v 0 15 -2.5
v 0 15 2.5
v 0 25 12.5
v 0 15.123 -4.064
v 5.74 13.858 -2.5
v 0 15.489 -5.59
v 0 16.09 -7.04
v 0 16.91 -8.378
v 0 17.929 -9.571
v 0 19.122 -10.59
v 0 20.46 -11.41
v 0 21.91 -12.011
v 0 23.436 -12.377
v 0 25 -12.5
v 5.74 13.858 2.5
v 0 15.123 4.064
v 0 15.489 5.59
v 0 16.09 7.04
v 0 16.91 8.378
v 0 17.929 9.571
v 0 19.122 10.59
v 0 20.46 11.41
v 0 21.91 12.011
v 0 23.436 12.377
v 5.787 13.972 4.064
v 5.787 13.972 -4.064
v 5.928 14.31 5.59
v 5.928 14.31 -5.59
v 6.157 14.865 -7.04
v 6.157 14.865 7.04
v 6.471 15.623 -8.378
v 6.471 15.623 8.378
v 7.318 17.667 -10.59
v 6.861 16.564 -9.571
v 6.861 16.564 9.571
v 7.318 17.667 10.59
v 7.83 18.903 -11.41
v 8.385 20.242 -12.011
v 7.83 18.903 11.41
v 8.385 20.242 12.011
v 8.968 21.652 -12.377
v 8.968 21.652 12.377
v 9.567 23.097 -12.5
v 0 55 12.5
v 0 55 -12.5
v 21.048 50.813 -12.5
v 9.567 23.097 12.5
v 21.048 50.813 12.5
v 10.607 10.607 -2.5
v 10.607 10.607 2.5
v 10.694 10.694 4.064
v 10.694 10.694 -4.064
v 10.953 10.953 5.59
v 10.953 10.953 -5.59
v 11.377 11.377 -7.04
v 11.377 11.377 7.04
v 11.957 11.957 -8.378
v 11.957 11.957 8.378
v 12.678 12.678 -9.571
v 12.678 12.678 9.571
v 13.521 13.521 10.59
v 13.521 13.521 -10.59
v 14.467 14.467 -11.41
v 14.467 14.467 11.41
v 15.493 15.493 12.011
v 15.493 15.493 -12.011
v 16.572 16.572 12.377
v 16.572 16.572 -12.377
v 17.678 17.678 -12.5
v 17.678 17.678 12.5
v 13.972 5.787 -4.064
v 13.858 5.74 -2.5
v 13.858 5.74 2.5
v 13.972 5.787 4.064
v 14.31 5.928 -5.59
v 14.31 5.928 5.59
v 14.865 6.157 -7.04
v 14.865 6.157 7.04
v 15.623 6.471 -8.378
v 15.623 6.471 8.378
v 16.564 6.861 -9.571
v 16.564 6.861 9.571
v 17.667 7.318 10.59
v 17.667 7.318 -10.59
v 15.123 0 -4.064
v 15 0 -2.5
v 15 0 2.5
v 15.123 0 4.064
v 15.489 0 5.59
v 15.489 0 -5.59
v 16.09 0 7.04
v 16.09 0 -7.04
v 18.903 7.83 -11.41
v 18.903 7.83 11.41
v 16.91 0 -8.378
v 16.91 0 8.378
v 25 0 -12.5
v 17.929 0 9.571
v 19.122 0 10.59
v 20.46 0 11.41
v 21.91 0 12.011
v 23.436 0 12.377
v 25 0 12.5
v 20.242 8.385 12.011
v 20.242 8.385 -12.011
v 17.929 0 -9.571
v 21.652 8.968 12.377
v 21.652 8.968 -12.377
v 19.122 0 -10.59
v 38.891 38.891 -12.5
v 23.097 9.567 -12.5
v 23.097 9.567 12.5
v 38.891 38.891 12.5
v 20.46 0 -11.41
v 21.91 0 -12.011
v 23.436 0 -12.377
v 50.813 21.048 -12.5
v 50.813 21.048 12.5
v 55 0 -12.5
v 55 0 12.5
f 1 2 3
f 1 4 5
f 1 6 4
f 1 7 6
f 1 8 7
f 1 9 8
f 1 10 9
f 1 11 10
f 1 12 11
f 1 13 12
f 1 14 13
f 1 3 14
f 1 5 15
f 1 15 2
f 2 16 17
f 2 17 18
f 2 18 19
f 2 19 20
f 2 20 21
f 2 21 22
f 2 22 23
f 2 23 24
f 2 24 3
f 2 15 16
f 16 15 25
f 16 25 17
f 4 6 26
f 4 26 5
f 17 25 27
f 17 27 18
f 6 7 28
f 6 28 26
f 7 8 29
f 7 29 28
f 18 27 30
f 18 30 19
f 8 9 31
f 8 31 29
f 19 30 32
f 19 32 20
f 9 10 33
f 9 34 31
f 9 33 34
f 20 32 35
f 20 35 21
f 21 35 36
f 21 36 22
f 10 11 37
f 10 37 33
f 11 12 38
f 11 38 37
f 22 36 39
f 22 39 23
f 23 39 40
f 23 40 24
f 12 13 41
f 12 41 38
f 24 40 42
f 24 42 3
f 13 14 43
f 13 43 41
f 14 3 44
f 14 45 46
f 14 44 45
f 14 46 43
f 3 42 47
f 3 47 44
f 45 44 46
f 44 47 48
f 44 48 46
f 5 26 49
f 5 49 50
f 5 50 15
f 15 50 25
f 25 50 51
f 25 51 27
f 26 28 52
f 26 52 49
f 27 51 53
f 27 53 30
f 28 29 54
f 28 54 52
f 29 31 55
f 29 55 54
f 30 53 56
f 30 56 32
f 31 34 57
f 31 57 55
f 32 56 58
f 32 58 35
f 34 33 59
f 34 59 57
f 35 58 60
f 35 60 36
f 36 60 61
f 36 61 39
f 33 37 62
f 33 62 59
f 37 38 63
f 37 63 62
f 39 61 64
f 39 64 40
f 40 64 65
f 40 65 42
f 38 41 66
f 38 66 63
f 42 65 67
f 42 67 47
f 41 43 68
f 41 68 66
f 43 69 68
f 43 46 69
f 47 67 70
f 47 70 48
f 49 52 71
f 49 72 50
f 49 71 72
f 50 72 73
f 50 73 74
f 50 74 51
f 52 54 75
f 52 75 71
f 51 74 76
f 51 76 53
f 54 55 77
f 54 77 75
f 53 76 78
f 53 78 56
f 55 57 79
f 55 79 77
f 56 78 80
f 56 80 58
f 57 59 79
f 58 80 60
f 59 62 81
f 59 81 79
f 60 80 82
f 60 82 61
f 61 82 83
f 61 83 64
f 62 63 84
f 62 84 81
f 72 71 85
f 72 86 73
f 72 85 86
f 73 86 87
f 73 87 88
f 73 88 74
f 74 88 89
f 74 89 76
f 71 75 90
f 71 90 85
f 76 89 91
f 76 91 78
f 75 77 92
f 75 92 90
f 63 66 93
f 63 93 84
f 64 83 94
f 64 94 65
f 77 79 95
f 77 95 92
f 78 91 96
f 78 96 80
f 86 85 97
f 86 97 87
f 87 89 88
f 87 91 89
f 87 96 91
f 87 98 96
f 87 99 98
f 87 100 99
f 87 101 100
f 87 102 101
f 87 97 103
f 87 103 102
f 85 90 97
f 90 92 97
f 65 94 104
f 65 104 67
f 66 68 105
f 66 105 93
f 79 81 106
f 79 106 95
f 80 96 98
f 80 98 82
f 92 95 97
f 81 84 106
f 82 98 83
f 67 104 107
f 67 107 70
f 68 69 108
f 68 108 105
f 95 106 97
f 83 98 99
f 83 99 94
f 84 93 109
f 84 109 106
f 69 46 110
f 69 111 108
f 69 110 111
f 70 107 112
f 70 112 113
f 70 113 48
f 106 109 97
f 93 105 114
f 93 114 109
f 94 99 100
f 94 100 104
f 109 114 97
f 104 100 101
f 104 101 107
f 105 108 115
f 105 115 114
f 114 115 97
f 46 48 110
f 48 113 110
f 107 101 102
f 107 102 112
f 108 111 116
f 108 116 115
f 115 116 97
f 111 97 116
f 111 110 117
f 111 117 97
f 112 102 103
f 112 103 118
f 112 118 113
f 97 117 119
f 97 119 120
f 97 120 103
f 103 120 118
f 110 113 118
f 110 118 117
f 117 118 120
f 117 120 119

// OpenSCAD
// Start: lazy_union
default_5_default_5();
// End: lazy_union

// Modules.

// 'PartMaterial undef-default - default 5.0'
module default_5_default_5() {
  // 'None : _combine_solids_and_holes'
  union() {
    // 'default : _combine_solids_and_holes'
    union() {
      // 'stadium : _combine_solids_and_holes'
      union() {
        // 'stadium'
        polyhedron(points=[[25.0, 0.0, 12.5], [55.0, 0.0, 12.5], [55.0, 0.0, -12.5], [25.0, 0.0, -12.5], [23.435655349597692, 0.0, -12.376883405951379], [21.909830056250527, 0.0, -12.010565162951536], [20.460095002604533, 0.0, -11.410065241883679], [19.12214747707527, 0.0, -10.590169943749473], [17.928932188134524, 0.0, -9.571067811865476], [16.909830056250527, 0.0, -8.377852522924732], [16.08993475811632, 0.0, -7.0399049973954675], [15.489434837048465, 0.0, -5.5901699437494745], [15.123116594048623, 0.0, -4.064344650402309], [15.0, 0.0, -2.5000000000000004], [15.0, 0.0, 2.5], [15.123116594048621, 0.0, 4.064344650402308], [15.489434837048464, 0.0, 5.5901699437494745], [16.08993475811632, 0.0, 7.0399049973954675], [16.909830056250527, 0.0, 8.377852522924732], [17.928932188134524, 0.0, 9.571067811865476], [19.122147477075266, 0.0, 10.590169943749475], [20.460095002604533, 0.0, 11.41006524188368], [21.909830056250524, 0.0, 12.010565162951536], [23.43565534959769, 0.0, 12.376883405951379], [23.09698831278217, 9.567085809127244, 12.5], [50.81337428812077, 21.047588780079938, 12.5], [50.81337428812077, 21.047588780079938, -12.5], [23.09698831278217, 9.567085809127244, -12.5], [21.65172230848195, 8.968437028909323, -12.376883405951379], [20.242043549770475, 8.38452896846176, -12.010565162951536], [18.902663006142788, 7.829739382112523, -11.410065241883679], [17.66656067173218, 7.317729030718606, -10.590169943749473], [16.564173488400286, 6.86110530839626, -9.571067811865476], [15.622645887214043, 6.471111806636311, -8.377852522924732], [14.86516140246561, 6.157351459766314, -7.0399049973954675], [14.310371816116374, 5.927550088837102, -5.5901699437494745], [13.971937889023325, 5.787366166267973, -4.064344650402309], [13.858192987669302, 5.740251485476347, -2.5000000000000004], [13.858192987669302, 5.740251485476347, 2.5], [13.971937889023323, 5.787366166267972, 4.064344650402308], [14.310371816116373, 5.927550088837101, 5.5901699437494745], [14.86516140246561, 6.157351459766314, 7.0399049973954675], [15.622645887214043, 6.471111806636311, 8.377852522924732], [16.564173488400286, 6.86110530839626, 9.571067811865476], [17.666560671732178, 7.3177290307186045, 10.590169943749475], [18.902663006142788, 7.829739382112523, 11.41006524188368], [20.24204354977047, 8.384528968461758, 12.010565162951536], [21.651722308481947, 8.968437028909321, 12.376883405951379], [17.67766952966369, 17.67766952966369, 12.5], [38.890872965260115, 38.890872965260115, 12.5], [38.890872965260115, 38.890872965260115, -12.5], [17.67766952966369, 17.67766952966369, -12.5], [16.57151081925132, 16.57151081925132, -12.376883405951379], [15.492589407419585, 15.492589407419585, -12.010565162951536], [14.467471920062659, 14.467471920062659, -11.410065241883679], [13.521400151889155, 13.521400151889155, -10.590169943749473], [12.677669529663689, 12.677669529663689, -9.571067811865476], [11.957055501486847, 11.957055501486847, -8.377852522924732], [11.377301976313184, 11.377301976313184, -7.0399049973954675], [10.952684410024116, 10.952684410024116, -5.5901699437494745], [10.693658296326586, 10.693658296326586, -4.064344650402309], [10.606601717798213, 10.606601717798213, -2.5000000000000004], [10.606601717798213, 10.606601717798213, 2.5], [10.693658296326586, 10.693658296326586, 4.064344650402308], [10.952684410024116, 10.952684410024116, 5.5901699437494745], [11.377301976313184, 11.377301976313184, 7.0399049973954675], [11.957055501486847, 11.957055501486847, 8.377852522924732], [12.677669529663689, 12.677669529663689, 9.571067811865476], [13.521400151889154, 13.521400151889154, 10.590169943749475], [14.467471920062659, 14.467471920062659, 11.41006524188368], [15.492589407419583, 15.492589407419583, 12.010565162951536], [16.571510819251316, 16.571510819251316, 12.376883405951379], [9.567085809127246, 23.09698831278217, 12.5], [21.04758878007994, 50.81337428812077, 12.5], [21.04758878007994, 50.81337428812077, -12.5], [9.567085809127246, 23.09698831278217, -12.5], [8.968437028909324, 21.65172230848195, -12.376883405951379], [8.384528968461762, 20.242043549770475, -12.010565162951536], [7.829739382112524, 18.902663006142788, -11.410065241883679], [7.317729030718607, 17.66656067173218, -10.590169943749473], [6.861105308396261, 16.564173488400286, -9.571067811865476], [6.471111806636312, 15.622645887214043, -8.377852522924732], [6.157351459766315, 14.86516140246561, -7.0399049973954675], [5.927550088837103, 14.310371816116374, -5.5901699437494745], [5.787366166267974, 13.971937889023325, -4.064344650402309], [5.740251485476348, 13.858192987669302, -2.5000000000000004], [5.740251485476348, 13.858192987669302, 2.5], [5.787366166267973, 13.971937889023323, 4.064344650402308], [5.927550088837102, 14.310371816116373, 5.5901699437494745], [6.157351459766315, 14.86516140246561, 7.0399049973954675], [6.471111806636312, 15.622645887214043, 8.377852522924732], [6.861105308396261, 16.564173488400286, 9.571067811865476], [7.317729030718606, 17.666560671732178, 10.590169943749475], [7.829739382112524, 18.902663006142788, 11.41006524188368], [8.38452896846176, 20.24204354977047, 12.010565162951536], [8.968437028909323, 21.651722308481947, 12.376883405951379], [0.0, 25.0, 12.5], [0.0, 55.0, 12.5], [0.0, 55.0, -12.5], [0.0, 25.0, -12.5], [0.0, 23.435655349597692, -12.376883405951379], [0.0, 21.909830056250527, -12.010565162951536], [0.0, 20.460095002604533, -11.410065241883679], [0.0, 19.12214747707527, -10.590169943749473], [0.0, 17.928932188134524, -9.571067811865476], [0.0, 16.909830056250527, -8.377852522924732], [0.0, 16.08993475811632, -7.0399049973954675], [0.0, 15.489434837048465, -5.5901699437494745], [0.0, 15.123116594048623, -4.064344650402309], [0.0, 15.0, -2.5000000000000004], [0.0, 15.0, 2.5], [0.0, 15.123116594048621, 4.064344650402308], [0.0, 15.489434837048464, 5.5901699437494745], [0.0, 16.08993475811632, 7.0399049973954675], [0.0, 16.909830056250527, 8.377852522924732], [0.0, 17.928932188134524, 9.571067811865476], [0.0, 19.122147477075266, 10.590169943749475], [0.0, 20.460095002604533, 11.41006524188368], [0.0, 21.909830056250524, 12.010565162951536], [0.0, 23.43565534959769, 12.376883405951379]], faces=[[0, 24, 25, 1], [1, 25, 26, 2], [2, 26, 27, 3], [3, 27, 28, 4], [4, 28, 29, 5], [5, 29, 30, 6], [6, 30, 31, 7], [7, 31, 32, 8], [8, 32, 33, 9], [9, 33, 34, 10], [10, 34, 35, 11], [11, 35, 36, 12], [12, 36, 37, 13], [13, 37, 38, 14], [14, 38, 39, 15], [15, 39, 40, 16], [16, 40, 41, 17], [17, 41, 42, 18], [18, 42, 43, 19], [19, 43, 44, 20], [20, 44, 45, 21], [21, 45, 46, 22], [22, 46, 47, 23], [23, 47, 24, 0], [24, 48, 49, 25], [25, 49, 50, 26], [26, 50, 51, 27], [27, 51, 52, 28], [28, 52, 53, 29], [29, 53, 54, 30], [30, 54, 55, 31], [31, 55, 56, 32], [32, 56, 57, 33], [33, 57, 58, 34], [34, 58, 59, 35], [35, 59, 60, 36], [36, 60, 61, 37], [37, 61, 62, 38], [38, 62, 63, 39], [39, 63, 64, 40], [40, 64, 65, 41], [41, 65, 66, 42], [42, 66, 67, 43], [43, 67, 68, 44], [44, 68, 69, 45], [45, 69, 70, 46], [46, 70, 71, 47], [47, 71, 48, 24], [48, 72, 73, 49], [49, 73, 74, 50], [50, 74, 75, 51], [51, 75, 76, 52], [52, 76, 77, 53], [53, 77, 78, 54], [54, 78, 79, 55], [55, 79, 80, 56], [56, 80, 81, 57], [57, 81, 82, 58], [58, 82, 83, 59], [59, 83, 84, 60], [60, 84, 85, 61], [61, 85, 86, 62], [62, 86, 87, 63], [63, 87, 88, 64], [64, 88, 89, 65], [65, 89, 90, 66], [66, 90, 91, 67], [67, 91, 92, 68], [68, 92, 93, 69], [69, 93, 94, 70], [70, 94, 95, 71], [71, 95, 72, 48], [72, 96, 97, 73], [73, 97, 98, 74], [74, 98, 99, 75], [75, 99, 100, 76], [76, 100, 101, 77], [77, 101, 102, 78], [78, 102, 103, 79], [79, 103, 104, 80], [80, 104, 105, 81], [81, 105, 106, 82], [82, 106, 107, 83], [83, 107, 108, 84], [84, 108, 109, 85], [85, 109, 110, 86], [86, 110, 111, 87], [87, 111, 112, 88], [88, 112, 113, 89], [89, 113, 114, 90], [90, 114, 115, 91], [91, 115, 116, 92], [92, 116, 117, 93], [93, 117, 118, 94], [94, 118, 119, 95], [95, 119, 96, 72], [0, 1, 2, 3, 4, 5, 6, 7, 8, 9, 10, 11, 12, 13, 14, 15, 16, 17, 18, 19, 20, 21, 22, 23], [119, 118, 117, 116, 115, 114, 113, 112, 111, 110, 109, 108, 107, 106, 105, 104, 103, 102, 101, 100, 99, 98, 97, 96]], convexity=10);
      }
    }
  }
} // end module default_5_default_5
